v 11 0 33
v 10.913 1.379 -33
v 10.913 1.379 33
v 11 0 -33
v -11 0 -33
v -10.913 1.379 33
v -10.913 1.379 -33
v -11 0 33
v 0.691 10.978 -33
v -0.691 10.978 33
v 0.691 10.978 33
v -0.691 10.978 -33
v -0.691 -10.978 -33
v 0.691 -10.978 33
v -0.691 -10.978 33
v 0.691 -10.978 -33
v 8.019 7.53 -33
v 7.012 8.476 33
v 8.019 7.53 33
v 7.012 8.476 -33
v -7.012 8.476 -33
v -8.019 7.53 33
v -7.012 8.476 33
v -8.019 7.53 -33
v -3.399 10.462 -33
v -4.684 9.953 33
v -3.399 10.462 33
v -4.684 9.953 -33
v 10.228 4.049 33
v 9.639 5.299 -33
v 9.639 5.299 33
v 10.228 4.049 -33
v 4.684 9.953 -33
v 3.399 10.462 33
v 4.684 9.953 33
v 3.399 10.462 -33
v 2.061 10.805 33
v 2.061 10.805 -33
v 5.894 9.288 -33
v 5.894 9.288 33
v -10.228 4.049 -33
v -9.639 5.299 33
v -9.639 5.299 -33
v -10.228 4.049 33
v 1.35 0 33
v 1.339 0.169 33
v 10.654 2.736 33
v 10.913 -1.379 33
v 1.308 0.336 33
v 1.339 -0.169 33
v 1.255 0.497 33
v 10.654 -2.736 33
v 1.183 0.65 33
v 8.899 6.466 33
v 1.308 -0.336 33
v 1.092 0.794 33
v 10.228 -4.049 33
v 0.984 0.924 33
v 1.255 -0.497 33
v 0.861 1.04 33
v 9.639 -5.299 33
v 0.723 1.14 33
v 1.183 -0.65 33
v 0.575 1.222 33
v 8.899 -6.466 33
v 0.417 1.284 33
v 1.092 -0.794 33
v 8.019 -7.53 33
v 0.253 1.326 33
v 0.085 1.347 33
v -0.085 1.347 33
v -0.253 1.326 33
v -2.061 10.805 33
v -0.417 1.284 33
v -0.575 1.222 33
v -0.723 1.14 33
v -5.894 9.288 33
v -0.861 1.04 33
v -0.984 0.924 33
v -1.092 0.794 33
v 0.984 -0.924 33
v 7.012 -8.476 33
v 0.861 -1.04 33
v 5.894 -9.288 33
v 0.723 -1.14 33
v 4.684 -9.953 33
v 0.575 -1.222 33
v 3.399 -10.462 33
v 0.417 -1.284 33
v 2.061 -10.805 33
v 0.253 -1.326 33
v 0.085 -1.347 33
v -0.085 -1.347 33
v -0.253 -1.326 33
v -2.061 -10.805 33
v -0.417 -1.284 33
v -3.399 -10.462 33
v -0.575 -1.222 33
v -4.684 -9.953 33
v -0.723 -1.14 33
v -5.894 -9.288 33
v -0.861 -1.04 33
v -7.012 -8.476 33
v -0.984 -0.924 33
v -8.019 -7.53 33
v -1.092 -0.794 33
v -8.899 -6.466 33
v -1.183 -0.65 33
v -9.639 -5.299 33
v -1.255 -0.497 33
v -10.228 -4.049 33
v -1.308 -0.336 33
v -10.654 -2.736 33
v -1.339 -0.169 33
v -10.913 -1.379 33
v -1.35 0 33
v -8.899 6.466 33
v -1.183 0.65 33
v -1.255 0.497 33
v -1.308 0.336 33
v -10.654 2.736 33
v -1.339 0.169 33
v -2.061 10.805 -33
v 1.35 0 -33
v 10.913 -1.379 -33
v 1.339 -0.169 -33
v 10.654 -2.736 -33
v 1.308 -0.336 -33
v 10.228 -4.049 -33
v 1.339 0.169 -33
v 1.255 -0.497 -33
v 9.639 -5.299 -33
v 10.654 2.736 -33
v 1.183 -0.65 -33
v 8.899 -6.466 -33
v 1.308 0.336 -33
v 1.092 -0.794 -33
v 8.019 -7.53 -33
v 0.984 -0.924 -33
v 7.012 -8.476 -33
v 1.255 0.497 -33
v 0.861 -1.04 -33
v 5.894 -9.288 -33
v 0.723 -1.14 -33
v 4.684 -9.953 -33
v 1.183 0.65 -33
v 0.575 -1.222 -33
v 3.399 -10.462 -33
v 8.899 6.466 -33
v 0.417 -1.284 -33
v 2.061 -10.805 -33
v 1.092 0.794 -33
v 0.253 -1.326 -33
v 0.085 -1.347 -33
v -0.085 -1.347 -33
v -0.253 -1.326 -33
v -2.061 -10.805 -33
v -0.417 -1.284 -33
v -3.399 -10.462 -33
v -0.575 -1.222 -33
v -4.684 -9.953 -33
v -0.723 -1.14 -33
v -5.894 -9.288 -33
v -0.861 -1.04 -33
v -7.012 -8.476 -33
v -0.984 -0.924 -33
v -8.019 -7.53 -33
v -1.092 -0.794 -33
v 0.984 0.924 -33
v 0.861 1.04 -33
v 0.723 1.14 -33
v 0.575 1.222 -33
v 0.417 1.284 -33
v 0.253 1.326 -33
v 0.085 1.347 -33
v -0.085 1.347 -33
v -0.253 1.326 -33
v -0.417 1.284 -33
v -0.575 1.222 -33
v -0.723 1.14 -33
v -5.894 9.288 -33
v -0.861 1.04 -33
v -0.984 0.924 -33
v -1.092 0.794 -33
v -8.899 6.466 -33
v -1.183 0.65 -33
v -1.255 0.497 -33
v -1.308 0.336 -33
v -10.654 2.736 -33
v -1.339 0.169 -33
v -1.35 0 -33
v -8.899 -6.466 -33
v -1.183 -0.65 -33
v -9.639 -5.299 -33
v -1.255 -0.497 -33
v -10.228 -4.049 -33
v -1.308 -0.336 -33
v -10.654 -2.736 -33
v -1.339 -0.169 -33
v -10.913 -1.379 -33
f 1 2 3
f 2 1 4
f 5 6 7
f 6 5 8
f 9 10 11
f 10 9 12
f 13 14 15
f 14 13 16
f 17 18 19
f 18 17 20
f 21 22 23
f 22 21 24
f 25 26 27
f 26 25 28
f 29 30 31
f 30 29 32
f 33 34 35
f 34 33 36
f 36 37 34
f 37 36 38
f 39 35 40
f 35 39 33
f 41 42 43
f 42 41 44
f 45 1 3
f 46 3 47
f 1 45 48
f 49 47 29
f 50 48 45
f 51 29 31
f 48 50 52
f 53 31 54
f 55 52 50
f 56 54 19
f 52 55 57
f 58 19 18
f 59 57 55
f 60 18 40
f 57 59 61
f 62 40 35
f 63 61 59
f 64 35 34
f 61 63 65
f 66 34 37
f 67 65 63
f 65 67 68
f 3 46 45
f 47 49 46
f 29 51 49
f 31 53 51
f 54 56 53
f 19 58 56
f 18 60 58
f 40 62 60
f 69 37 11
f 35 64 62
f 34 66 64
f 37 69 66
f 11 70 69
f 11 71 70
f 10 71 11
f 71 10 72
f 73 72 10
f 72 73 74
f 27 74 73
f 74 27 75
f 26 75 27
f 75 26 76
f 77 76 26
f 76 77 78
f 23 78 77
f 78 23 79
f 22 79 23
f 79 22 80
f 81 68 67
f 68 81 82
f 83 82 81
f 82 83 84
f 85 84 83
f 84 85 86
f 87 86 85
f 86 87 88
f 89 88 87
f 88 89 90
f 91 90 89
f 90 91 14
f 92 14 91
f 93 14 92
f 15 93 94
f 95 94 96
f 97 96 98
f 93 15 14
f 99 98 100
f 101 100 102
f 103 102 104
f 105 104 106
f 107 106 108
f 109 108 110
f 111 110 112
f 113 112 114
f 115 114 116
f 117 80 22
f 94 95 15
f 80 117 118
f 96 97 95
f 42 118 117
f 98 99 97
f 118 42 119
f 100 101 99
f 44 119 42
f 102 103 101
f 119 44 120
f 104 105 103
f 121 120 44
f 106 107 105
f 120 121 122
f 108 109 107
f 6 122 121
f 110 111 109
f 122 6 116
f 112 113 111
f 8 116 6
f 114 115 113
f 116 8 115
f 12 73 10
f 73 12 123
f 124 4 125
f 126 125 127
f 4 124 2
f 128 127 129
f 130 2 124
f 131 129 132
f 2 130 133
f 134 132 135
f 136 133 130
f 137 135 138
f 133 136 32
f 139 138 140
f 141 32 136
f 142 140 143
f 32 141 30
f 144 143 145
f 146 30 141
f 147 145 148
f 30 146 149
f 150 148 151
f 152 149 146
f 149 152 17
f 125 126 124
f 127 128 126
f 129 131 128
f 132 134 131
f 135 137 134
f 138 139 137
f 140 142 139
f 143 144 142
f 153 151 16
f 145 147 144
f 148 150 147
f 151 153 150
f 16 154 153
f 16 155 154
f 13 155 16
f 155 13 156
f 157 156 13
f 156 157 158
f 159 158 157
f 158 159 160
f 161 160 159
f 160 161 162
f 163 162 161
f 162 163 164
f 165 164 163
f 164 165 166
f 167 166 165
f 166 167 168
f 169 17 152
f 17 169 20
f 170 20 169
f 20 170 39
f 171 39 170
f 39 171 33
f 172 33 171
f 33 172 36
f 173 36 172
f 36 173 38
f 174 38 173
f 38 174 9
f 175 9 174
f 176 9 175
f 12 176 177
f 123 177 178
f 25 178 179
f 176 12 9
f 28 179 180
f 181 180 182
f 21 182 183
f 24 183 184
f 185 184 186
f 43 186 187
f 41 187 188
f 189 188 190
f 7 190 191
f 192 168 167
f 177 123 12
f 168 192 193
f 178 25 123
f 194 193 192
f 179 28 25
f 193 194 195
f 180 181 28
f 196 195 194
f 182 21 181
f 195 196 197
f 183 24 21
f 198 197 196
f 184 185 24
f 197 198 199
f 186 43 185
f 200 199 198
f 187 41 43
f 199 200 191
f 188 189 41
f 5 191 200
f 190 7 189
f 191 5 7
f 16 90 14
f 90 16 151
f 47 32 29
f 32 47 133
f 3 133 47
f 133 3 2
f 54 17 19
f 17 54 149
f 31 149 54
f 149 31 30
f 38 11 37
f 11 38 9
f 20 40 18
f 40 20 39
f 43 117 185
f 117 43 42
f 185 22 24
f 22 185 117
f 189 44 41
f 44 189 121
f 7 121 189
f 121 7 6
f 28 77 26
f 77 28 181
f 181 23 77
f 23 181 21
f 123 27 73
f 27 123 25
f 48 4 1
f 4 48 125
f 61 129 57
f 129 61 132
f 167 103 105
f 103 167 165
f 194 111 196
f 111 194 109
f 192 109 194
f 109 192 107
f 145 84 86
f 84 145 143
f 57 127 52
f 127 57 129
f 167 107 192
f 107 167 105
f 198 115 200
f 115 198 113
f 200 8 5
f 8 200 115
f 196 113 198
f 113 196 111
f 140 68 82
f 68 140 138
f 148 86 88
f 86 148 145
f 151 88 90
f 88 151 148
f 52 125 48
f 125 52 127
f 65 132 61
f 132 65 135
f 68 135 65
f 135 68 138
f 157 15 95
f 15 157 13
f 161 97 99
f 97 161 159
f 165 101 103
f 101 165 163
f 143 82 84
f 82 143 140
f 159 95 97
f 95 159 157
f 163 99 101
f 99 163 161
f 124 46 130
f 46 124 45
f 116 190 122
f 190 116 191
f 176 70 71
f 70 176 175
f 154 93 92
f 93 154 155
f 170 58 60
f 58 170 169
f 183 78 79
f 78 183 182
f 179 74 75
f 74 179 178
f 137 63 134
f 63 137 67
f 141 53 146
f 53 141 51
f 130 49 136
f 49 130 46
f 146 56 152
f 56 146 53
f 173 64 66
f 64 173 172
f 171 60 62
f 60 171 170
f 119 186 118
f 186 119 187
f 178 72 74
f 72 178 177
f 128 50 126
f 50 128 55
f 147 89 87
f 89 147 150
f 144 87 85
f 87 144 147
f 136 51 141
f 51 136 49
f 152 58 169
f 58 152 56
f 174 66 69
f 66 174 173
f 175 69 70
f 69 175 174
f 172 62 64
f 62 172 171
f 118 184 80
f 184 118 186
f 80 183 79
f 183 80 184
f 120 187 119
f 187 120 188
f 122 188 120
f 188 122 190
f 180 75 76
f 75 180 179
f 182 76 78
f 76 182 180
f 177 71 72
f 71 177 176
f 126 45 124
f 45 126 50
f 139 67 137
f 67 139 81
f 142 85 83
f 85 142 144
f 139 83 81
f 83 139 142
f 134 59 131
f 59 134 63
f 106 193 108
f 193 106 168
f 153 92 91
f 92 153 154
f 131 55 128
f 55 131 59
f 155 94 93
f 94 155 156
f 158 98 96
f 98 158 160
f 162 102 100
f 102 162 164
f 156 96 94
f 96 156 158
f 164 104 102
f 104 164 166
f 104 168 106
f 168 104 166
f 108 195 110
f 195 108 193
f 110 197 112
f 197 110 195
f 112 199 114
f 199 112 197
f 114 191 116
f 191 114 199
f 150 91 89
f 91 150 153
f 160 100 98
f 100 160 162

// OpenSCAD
$fn = 50;


difference() {
	union() {
		translate(v = [0, 0, -33.0000000000]) {
			cylinder(h = 66, r = 11.0000000000);
		}
	}
	union() {
		translate(v = [0, 0, -100.0000000000]) {
			cylinder(h = 200, r = 1.3500000000);
		}
	}
}
